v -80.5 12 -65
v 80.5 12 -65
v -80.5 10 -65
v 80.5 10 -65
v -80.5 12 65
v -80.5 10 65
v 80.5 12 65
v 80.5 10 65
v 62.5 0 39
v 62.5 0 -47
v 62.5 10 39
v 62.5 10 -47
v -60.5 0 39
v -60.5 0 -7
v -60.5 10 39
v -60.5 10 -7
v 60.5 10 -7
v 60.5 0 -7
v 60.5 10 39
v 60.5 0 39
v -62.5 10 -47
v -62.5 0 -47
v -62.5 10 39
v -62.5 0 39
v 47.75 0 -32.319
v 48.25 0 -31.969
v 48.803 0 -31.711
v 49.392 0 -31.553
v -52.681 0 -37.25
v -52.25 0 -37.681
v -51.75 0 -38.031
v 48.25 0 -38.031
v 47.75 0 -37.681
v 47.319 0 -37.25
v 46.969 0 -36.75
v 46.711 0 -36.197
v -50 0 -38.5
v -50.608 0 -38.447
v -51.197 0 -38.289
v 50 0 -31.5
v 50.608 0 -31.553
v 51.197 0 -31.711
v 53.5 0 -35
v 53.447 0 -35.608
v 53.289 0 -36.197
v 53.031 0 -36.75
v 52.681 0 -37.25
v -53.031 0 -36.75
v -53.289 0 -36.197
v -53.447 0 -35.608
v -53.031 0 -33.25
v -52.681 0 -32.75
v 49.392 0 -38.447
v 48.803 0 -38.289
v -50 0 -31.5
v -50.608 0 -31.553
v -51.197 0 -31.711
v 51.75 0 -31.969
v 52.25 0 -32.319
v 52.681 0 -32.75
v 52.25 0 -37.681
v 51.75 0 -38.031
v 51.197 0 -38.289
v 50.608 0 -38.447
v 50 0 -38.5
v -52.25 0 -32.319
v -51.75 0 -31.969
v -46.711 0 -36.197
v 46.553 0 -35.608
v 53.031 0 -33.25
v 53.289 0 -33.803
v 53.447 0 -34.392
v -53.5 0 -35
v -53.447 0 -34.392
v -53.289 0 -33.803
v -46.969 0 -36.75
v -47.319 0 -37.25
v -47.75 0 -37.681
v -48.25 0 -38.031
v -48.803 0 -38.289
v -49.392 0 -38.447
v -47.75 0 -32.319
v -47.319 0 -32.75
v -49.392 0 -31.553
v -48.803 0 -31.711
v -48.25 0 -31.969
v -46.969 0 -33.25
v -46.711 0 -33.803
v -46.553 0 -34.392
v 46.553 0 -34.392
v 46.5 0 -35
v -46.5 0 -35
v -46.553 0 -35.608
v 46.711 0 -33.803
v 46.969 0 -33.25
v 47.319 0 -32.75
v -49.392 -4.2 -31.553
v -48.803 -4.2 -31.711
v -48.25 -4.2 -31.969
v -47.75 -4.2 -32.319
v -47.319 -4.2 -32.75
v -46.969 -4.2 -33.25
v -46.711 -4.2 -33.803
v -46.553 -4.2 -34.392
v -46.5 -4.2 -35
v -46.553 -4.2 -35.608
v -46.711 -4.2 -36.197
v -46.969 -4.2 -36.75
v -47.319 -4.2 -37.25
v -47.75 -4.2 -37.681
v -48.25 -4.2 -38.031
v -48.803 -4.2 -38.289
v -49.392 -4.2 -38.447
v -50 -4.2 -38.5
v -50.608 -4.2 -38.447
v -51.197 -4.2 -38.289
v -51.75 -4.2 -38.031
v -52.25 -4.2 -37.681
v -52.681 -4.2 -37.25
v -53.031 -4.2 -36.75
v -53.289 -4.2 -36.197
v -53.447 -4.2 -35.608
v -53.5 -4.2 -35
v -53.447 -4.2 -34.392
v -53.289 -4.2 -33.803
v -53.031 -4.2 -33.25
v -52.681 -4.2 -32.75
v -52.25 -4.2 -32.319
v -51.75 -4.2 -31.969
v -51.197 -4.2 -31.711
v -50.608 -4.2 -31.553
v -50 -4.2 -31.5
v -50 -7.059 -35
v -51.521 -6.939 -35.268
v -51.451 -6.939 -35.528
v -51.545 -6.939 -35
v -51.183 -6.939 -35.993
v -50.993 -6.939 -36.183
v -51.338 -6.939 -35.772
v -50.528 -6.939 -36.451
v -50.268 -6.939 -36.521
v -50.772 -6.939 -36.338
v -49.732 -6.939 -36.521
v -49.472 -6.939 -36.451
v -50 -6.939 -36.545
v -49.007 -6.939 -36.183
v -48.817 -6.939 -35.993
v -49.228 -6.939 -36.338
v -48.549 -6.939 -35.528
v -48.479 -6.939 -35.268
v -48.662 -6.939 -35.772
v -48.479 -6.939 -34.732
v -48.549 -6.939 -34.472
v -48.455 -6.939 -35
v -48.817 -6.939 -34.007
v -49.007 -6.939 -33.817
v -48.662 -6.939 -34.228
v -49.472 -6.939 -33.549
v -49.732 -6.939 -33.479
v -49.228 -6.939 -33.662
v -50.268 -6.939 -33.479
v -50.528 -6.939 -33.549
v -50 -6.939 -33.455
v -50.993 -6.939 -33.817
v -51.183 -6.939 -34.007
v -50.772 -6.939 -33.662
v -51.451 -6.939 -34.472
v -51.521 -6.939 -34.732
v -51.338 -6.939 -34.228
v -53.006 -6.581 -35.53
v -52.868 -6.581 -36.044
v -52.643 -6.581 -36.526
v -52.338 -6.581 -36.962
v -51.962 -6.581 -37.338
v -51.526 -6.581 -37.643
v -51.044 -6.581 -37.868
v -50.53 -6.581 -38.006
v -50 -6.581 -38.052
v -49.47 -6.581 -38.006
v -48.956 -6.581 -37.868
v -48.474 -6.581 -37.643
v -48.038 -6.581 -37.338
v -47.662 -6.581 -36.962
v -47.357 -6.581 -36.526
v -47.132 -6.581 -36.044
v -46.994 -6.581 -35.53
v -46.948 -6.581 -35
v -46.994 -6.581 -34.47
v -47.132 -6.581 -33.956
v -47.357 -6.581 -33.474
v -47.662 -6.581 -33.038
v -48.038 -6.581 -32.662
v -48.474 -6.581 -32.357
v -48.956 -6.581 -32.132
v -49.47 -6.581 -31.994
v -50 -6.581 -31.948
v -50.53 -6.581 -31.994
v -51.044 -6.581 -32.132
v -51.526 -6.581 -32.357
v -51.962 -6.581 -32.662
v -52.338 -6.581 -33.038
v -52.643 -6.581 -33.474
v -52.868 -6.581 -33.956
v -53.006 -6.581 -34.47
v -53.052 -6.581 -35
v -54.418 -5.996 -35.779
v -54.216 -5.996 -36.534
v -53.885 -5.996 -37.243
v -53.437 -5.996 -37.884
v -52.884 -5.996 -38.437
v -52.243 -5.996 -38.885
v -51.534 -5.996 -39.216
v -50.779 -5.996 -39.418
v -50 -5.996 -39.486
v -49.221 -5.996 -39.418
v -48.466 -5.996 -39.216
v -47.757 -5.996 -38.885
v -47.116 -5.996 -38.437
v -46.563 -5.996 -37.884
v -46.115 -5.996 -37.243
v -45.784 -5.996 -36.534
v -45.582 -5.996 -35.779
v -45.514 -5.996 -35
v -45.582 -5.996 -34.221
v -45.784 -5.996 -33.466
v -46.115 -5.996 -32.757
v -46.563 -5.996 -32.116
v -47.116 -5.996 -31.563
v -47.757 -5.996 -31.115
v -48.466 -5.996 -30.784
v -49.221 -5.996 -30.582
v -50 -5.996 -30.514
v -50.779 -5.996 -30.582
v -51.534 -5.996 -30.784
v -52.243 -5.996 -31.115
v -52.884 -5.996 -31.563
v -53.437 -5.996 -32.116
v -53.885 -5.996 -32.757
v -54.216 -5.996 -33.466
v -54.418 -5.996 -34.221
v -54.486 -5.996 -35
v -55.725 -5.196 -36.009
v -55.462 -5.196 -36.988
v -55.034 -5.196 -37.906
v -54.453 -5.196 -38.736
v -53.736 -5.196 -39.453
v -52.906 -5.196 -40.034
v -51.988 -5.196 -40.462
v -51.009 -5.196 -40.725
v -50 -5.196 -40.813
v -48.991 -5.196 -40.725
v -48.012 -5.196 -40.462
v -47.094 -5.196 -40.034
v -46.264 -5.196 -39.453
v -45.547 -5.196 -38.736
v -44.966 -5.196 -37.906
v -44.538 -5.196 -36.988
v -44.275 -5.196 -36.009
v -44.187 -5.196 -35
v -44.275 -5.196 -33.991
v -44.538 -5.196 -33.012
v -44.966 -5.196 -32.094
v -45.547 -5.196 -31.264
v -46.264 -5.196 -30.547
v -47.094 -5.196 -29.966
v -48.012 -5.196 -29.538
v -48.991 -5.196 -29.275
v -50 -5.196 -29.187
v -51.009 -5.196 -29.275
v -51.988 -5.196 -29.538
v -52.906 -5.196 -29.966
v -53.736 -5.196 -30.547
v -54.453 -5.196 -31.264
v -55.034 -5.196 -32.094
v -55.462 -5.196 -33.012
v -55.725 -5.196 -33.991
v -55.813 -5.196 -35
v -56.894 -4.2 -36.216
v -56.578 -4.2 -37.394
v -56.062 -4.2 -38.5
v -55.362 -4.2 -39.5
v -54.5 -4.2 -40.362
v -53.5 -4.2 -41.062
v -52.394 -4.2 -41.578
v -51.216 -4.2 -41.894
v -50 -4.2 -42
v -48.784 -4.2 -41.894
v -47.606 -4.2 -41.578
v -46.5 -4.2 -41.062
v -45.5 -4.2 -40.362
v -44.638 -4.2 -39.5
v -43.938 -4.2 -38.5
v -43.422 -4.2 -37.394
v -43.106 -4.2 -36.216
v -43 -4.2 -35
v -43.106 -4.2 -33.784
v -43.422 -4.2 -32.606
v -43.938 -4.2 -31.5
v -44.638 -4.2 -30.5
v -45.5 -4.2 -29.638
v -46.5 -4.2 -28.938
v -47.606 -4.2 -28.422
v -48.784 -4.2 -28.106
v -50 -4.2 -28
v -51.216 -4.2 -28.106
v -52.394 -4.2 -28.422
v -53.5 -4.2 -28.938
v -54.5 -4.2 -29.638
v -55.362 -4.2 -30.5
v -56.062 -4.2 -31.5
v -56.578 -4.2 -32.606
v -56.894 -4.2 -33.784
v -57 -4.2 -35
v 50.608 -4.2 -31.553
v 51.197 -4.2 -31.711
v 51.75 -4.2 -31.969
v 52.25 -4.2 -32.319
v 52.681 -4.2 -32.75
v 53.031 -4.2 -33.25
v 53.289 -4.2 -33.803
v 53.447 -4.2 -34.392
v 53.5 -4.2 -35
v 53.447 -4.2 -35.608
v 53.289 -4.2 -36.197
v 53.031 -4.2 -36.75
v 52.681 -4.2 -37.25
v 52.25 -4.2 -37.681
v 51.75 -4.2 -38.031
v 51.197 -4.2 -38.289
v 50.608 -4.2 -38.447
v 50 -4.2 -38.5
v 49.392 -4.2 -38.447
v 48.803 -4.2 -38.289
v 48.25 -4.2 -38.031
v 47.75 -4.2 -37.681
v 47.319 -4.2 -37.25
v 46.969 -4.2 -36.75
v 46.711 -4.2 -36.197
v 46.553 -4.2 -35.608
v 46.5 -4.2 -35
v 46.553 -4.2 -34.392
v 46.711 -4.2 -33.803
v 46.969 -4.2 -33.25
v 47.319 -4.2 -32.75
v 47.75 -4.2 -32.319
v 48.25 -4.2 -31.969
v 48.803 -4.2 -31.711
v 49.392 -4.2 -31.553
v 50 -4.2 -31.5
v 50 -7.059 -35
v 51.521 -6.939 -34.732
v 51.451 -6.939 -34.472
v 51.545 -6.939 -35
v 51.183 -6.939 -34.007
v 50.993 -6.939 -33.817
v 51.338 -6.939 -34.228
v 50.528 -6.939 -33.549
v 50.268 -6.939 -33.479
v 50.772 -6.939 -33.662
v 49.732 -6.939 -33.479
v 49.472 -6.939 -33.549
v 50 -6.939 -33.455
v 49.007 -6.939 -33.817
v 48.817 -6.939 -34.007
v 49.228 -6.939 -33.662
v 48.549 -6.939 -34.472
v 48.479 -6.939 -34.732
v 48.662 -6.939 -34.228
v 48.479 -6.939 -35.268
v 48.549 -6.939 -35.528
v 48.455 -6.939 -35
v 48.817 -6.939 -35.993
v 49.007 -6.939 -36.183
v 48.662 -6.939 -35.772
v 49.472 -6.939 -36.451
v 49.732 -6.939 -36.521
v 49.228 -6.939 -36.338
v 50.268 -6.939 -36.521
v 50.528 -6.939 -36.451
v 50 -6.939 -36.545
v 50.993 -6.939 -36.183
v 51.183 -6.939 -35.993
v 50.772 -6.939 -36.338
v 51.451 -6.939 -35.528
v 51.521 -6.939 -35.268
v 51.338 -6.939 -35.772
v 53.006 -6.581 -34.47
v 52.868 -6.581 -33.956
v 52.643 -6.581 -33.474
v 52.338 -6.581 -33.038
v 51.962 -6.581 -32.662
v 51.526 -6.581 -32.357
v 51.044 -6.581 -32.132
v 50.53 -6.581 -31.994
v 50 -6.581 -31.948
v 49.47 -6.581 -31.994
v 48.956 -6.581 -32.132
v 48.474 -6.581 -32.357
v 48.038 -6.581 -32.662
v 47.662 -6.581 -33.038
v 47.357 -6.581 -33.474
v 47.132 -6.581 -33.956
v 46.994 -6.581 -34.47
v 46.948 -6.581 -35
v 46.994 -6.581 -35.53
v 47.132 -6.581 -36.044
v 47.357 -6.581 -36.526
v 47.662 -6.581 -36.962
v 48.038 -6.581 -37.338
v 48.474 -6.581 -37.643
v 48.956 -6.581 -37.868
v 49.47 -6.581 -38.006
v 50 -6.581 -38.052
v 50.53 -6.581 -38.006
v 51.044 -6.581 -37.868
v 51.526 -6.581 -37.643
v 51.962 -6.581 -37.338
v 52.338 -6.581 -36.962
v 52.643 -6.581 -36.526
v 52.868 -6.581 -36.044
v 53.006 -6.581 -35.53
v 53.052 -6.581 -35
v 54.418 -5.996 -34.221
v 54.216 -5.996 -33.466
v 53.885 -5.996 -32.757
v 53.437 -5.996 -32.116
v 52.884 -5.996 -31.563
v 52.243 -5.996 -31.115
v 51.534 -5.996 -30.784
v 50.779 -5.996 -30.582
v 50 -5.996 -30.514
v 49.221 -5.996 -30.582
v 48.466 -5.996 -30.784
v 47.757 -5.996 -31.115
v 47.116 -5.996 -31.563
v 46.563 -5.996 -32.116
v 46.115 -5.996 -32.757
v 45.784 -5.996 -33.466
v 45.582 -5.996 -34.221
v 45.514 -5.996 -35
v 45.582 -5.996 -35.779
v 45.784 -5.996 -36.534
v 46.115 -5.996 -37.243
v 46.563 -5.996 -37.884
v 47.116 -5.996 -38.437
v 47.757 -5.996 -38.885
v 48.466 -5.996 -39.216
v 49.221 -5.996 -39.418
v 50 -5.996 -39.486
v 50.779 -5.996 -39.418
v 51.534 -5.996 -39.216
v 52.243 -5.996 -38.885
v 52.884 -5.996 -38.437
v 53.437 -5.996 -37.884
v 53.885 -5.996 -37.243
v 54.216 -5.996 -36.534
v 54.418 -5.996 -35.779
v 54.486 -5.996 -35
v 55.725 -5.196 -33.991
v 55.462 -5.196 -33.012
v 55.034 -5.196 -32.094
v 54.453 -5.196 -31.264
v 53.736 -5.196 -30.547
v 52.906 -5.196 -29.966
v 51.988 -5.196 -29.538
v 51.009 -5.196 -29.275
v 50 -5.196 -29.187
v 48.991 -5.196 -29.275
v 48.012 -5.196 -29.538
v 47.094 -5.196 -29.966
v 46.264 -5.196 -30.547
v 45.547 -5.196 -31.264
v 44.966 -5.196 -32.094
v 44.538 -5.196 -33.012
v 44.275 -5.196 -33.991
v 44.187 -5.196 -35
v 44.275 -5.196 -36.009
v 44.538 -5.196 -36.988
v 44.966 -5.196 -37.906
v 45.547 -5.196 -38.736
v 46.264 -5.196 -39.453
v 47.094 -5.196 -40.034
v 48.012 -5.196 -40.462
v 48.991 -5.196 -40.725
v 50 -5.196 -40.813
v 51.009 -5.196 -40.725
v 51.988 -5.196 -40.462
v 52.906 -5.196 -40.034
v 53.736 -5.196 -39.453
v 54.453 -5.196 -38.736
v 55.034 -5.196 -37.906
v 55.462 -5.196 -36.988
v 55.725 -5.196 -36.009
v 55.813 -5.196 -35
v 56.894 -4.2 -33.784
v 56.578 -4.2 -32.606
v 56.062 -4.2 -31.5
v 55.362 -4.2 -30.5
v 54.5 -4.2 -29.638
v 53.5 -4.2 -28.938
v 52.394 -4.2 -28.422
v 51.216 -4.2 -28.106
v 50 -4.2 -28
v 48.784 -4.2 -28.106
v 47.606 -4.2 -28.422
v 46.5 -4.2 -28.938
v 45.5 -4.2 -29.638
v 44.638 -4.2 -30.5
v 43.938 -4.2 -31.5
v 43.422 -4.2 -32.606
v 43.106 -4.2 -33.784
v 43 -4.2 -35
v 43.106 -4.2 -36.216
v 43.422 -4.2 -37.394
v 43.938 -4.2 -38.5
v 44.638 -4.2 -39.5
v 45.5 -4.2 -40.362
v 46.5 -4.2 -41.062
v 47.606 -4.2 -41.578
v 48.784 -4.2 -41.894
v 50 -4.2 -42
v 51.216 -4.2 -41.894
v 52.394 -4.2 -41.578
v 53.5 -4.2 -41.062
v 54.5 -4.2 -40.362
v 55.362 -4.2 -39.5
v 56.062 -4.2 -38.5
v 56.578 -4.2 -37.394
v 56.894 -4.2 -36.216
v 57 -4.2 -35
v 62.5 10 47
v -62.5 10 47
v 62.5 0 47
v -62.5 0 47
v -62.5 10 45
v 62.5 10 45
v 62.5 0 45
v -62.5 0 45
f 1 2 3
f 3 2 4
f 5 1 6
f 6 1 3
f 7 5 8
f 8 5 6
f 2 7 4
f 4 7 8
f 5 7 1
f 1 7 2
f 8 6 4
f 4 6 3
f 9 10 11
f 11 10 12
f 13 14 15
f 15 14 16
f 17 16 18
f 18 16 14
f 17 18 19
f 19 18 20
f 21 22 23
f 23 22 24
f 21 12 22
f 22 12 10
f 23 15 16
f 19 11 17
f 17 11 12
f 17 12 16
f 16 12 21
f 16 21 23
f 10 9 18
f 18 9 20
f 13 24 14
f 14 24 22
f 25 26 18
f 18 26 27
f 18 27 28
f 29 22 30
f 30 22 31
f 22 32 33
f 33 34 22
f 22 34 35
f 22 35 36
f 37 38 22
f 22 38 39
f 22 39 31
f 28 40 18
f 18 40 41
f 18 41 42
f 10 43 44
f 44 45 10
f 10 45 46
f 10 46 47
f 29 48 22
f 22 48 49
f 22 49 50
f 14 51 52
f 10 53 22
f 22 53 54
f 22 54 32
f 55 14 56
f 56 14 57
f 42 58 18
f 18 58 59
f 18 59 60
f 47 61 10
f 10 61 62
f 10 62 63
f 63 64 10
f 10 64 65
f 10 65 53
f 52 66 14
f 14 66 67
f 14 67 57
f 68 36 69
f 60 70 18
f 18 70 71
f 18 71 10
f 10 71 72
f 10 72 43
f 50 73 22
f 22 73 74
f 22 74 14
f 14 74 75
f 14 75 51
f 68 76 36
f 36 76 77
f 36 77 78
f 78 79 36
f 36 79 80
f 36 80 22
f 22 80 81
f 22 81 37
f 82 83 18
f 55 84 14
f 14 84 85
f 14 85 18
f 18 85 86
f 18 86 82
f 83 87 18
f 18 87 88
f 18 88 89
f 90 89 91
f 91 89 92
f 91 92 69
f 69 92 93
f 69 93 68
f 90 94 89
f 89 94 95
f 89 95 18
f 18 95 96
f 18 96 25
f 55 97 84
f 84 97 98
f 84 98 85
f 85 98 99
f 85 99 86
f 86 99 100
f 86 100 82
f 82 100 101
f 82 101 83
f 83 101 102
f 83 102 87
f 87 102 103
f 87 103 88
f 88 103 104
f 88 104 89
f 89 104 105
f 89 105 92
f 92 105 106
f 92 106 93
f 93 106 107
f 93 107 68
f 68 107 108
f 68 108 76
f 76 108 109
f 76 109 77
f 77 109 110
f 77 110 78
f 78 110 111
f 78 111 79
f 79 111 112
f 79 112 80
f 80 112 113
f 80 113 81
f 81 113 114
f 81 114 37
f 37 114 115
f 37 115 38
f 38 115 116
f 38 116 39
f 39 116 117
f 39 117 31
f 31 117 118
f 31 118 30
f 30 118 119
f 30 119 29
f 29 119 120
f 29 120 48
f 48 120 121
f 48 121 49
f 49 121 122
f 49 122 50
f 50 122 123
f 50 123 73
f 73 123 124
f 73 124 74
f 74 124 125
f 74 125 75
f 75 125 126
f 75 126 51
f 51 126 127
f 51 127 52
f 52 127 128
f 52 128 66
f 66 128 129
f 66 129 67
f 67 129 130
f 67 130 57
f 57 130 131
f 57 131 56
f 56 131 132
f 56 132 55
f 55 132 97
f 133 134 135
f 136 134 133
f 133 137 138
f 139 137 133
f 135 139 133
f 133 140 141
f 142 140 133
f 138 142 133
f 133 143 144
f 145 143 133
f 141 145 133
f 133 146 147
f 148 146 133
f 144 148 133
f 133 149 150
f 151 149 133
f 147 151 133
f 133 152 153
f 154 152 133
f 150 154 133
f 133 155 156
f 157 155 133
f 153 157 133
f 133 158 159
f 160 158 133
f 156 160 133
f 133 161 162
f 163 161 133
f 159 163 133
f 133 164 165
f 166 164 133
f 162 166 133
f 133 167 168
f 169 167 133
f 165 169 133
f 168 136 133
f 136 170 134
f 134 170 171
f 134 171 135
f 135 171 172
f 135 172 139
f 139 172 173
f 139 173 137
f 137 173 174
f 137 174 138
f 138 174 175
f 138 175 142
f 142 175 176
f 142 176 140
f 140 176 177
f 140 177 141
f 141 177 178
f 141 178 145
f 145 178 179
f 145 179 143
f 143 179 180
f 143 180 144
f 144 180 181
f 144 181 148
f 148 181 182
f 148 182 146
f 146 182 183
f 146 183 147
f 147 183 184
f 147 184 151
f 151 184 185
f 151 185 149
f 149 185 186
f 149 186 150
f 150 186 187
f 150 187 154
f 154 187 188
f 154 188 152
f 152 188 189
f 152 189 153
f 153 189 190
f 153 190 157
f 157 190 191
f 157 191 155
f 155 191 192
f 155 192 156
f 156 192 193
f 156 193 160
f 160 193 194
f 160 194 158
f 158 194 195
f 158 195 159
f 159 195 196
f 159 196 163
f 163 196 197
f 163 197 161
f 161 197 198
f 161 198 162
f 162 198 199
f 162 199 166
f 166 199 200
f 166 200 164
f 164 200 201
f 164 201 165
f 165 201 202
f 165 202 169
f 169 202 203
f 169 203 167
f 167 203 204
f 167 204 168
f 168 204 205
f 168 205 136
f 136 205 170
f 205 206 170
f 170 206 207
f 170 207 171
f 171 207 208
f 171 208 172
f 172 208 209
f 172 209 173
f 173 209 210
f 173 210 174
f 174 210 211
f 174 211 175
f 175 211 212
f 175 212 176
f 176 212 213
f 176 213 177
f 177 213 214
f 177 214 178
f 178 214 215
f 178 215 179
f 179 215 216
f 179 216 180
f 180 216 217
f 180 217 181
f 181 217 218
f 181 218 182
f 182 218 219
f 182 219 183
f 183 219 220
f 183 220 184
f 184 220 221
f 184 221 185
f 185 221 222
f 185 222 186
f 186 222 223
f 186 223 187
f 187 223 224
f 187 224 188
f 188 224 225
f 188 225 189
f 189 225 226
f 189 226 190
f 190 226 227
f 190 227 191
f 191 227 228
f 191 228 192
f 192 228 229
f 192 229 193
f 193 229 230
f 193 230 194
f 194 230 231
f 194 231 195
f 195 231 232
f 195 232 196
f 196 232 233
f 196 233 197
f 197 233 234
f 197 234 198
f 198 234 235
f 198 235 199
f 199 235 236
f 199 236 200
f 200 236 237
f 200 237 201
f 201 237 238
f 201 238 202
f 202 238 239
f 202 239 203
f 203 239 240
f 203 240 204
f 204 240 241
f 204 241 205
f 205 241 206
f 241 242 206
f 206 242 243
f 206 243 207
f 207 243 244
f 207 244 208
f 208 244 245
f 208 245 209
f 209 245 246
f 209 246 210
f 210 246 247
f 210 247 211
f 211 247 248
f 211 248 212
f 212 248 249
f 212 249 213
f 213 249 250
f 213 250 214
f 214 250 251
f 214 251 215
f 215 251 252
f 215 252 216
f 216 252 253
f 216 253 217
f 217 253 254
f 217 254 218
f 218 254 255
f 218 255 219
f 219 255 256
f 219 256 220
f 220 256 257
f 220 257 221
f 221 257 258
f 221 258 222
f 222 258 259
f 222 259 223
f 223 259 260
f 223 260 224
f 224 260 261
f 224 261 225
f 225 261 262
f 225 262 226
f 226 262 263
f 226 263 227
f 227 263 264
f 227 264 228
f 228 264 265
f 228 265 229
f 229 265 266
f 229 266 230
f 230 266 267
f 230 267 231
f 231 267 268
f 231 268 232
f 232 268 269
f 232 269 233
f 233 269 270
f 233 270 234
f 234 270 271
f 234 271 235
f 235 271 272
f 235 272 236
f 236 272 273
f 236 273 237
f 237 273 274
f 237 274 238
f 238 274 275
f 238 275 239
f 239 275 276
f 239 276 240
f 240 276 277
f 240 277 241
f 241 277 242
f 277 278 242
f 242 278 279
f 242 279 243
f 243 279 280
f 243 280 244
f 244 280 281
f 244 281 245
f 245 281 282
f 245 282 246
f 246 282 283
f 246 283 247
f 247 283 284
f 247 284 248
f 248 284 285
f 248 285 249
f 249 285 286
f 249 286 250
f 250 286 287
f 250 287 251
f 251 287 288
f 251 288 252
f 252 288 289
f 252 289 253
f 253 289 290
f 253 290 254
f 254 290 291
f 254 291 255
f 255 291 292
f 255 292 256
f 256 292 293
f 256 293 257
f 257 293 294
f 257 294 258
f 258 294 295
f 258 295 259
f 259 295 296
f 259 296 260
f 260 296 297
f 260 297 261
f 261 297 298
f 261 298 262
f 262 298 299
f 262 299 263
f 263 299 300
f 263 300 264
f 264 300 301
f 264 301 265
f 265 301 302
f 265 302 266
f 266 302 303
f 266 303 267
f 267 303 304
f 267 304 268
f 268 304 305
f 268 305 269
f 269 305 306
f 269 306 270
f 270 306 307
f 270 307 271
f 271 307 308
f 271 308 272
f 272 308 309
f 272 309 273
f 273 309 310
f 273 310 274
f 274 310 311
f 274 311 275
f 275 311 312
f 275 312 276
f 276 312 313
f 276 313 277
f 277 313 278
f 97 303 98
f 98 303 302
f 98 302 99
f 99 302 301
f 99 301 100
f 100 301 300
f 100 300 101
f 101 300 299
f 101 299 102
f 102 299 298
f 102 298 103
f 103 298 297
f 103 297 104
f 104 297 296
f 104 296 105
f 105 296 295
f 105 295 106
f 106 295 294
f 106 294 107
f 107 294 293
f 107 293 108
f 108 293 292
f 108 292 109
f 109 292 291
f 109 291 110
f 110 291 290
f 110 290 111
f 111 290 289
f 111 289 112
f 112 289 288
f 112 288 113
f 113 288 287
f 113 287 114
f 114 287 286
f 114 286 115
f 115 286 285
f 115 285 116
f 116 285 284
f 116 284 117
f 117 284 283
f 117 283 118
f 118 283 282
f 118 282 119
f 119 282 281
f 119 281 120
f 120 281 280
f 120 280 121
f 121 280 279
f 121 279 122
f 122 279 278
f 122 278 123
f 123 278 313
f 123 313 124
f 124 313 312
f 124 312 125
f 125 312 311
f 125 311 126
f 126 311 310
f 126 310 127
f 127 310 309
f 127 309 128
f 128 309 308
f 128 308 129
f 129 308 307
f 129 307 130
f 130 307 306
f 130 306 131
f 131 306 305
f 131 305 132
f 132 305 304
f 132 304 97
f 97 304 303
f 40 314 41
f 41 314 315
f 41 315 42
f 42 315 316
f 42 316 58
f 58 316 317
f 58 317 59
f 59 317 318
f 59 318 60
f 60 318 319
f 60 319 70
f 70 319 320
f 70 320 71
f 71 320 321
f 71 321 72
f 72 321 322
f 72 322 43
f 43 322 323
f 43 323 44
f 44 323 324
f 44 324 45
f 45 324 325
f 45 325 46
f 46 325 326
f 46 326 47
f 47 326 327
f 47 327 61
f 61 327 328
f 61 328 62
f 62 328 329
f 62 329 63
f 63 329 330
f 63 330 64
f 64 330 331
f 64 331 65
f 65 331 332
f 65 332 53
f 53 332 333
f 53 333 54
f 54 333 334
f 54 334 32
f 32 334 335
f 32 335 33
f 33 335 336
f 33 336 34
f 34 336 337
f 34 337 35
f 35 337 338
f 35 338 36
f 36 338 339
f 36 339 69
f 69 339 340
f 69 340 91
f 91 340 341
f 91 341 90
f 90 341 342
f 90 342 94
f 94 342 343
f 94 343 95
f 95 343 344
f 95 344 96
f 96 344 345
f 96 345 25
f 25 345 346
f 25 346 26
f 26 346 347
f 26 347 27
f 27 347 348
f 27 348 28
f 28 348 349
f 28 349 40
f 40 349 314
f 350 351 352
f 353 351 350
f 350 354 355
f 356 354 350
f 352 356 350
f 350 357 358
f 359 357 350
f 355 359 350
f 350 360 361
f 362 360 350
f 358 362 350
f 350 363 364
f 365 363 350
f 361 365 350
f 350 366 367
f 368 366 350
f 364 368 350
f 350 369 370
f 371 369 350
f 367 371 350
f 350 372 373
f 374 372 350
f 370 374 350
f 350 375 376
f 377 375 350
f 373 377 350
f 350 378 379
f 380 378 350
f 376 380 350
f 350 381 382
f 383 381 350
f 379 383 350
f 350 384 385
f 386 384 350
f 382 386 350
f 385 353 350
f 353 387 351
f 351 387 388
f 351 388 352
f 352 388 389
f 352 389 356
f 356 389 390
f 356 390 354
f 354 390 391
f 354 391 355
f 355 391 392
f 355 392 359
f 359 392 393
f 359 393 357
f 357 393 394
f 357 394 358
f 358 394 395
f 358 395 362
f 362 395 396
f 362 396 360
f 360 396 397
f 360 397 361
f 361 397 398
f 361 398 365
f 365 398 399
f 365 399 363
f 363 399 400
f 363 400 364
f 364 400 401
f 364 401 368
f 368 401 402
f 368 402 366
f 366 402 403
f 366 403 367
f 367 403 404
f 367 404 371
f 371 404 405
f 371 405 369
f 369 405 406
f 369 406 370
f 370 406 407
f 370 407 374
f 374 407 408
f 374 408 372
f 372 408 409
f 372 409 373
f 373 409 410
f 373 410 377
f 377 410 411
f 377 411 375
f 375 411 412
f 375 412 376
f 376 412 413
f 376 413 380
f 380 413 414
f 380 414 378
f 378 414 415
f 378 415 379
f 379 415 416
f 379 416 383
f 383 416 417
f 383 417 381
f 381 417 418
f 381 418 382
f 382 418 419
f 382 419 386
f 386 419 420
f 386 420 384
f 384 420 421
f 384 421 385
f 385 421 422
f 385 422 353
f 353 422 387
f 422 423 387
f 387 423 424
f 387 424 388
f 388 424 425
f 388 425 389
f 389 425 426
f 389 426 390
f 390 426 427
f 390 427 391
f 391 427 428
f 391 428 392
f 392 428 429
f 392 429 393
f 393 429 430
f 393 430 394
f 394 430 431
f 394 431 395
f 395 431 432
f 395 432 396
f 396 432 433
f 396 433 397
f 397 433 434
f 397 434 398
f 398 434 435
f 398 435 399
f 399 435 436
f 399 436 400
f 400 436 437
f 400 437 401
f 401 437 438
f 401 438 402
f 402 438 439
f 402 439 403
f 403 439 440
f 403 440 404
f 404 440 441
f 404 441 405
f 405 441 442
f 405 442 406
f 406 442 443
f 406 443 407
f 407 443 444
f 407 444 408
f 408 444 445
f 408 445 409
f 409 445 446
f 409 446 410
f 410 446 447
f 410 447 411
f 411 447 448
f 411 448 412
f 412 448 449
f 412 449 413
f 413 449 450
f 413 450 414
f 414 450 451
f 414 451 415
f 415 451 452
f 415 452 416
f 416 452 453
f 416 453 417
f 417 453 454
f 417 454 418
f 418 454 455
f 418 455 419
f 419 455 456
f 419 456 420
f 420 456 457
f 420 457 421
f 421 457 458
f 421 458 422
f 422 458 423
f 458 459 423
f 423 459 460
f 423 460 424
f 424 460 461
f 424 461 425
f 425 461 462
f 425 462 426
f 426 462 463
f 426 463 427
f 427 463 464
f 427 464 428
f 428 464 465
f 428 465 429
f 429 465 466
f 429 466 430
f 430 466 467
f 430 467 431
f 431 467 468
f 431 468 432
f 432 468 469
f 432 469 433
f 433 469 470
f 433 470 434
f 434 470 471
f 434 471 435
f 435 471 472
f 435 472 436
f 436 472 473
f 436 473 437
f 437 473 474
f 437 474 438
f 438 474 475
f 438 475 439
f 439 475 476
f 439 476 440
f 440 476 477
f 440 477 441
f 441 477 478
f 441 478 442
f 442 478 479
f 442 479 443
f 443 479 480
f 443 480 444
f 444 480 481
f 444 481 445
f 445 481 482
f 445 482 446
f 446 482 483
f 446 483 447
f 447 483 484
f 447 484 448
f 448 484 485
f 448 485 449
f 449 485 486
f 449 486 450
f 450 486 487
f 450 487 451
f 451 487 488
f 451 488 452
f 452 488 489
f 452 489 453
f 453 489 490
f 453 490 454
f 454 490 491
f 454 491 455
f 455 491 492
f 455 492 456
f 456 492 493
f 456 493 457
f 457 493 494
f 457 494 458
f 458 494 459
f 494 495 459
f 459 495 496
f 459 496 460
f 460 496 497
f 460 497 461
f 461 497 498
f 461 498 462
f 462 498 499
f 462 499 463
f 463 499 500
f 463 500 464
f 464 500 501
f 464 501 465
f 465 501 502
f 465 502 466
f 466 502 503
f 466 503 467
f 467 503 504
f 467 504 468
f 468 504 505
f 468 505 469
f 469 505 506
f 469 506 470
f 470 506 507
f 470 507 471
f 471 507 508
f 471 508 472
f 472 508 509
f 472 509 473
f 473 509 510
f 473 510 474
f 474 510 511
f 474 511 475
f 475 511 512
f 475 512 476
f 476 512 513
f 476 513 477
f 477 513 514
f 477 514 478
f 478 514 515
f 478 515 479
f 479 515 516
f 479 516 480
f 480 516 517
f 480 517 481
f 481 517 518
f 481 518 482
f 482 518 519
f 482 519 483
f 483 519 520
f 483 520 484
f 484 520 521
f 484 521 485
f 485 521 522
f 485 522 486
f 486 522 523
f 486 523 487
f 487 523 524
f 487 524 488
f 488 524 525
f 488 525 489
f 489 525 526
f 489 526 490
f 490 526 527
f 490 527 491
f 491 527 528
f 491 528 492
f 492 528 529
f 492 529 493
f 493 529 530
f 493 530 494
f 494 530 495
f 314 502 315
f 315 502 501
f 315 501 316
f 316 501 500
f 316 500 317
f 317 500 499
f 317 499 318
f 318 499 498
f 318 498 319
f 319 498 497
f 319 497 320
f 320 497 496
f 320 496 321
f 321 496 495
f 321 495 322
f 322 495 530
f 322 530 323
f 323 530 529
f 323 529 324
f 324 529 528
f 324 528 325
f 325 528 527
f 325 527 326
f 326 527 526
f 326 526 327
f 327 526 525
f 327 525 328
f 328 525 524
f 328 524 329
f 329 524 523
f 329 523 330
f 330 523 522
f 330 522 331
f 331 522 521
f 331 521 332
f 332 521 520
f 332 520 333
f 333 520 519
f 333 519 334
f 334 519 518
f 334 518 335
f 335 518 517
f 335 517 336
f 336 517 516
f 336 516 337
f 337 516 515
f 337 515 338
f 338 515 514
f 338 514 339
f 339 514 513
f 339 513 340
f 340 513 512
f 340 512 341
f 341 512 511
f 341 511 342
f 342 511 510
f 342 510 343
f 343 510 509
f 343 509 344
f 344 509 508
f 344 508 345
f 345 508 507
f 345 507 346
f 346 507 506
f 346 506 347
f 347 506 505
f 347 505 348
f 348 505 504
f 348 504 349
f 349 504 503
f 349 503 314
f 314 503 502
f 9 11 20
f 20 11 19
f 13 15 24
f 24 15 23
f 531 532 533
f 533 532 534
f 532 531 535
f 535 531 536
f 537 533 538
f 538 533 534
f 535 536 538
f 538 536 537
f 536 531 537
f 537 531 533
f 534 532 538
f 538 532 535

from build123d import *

# Parameters (mm, degrees)
SKETCH1_W           = 125
SKETCH1_H           = 94
SKETCH1_W_2         = 121
SKETCH1_H_2         = 52
MAIN_DEPTH          = 10
MAINFRONTFACE_START = 10
SKETCH1_4_W         = 161
SKETCH1_4_H         = 130
SKETCH1_4_W_2       = 125
SKETCH1_4_H_2       = 94
SKETCH1_4_W_3       = 121
SKETCH1_4_H_3       = 52
MAINFRONTFACE_DEPTH = 2
SKETCH5_R           = 3.5
NOTCH_DEPTH         = 4.2
SKETCH11_W          = 2
SKETCH11_H          = 6
WIREHOLES_DEPTH     = 10


with BuildPart() as part:
    # Sketch1 → Main (new body)
    with BuildSketch(Plane(origin=(0, 0, 0), x_dir=(1, 0, 0), z_dir=(0, 1, 0))):
        Rectangle(SKETCH1_W, SKETCH1_H)
        with Locations((0, -19)):
            Rectangle(SKETCH1_W_2, SKETCH1_H_2, mode=Mode.SUBTRACT)
    extrude(amount=MAIN_DEPTH)

    # Sketch5 → Notch (add)
    with BuildSketch(Plane.XZ):
        with Locations(Location((-50, -35, 0), (0, 0, 90))):
            Circle(SKETCH5_R)
    notch = extrude(amount=NOTCH_DEPTH)

    # Sketch8 one side → ActualNotch (revolve)
    with BuildSketch(Plane.XY.offset(-35)):
        with BuildLine():
            Line((-50, -7.058571571), (-50, -4.2))
            Line((-50, -4.2), (-57, -4.2))
            ThreePointArc((-57, -4.2), (-53.780589618, -6.316386764), (-50, -7.058571571))
        make_face()
    actualnotch = revolve(axis=Axis((-50, -8.4, -35), (0, 1, 0)))

    # Mirror1: Notch, ActualNotch across plane
    add(notch.mirror(Plane(origin=(0, 0, 0), x_dir=(0, 0, 1), z_dir=(1, 0, 0))))
    add(actualnotch.mirror(Plane(origin=(0, 0, 0), x_dir=(0, 0, 1), z_dir=(1, 0, 0))))

    # Sketch11 → WireHoles (cut)
    with BuildSketch(Plane.XZ):
        with Locations((-61.5, 42)):
            Rectangle(SKETCH11_W, SKETCH11_H)
        with Locations((61.5, 42)):
            Rectangle(SKETCH11_W, SKETCH11_H)
    extrude(amount=-WIREHOLES_DEPTH, mode=Mode.SUBTRACT)


with BuildPart() as body_2:
    # Sketch1_4 → MainFrontFace (new body)
    with BuildSketch(Plane(origin=(0, 0, 0), x_dir=(1, 0, 0), z_dir=(0, 1, 0)).offset(MAINFRONTFACE_START)):
        Rectangle(SKETCH1_4_W, SKETCH1_4_H)
        Rectangle(SKETCH1_4_W_2, SKETCH1_4_H_2, mode=Mode.SUBTRACT)
        Rectangle(SKETCH1_4_W_2, SKETCH1_4_H_2)
        with Locations((0, -19)):
            Rectangle(SKETCH1_4_W_3, SKETCH1_4_H_3, mode=Mode.SUBTRACT)
        with Locations((0, -19)):
            Rectangle(SKETCH1_4_W_3, SKETCH1_4_H_3)
    extrude(amount=MAINFRONTFACE_DEPTH)


with BuildPart() as wireholes_piece_1:
    # of the separate pieces the step leaves, piece 1, a body of its own (wireholes_pieces)
    add(part.part.solids().sort_by_distance((57, -4.2, -35))[0])


with BuildPart() as wireholes_piece_2:
    # of the separate pieces the step leaves, piece 2, a body of its own (wireholes_pieces)
    add(part.part.solids().sort_by_distance((62.5, 0, 47))[0])


solid = Compound([body_2.part, wireholes_piece_1.part, wireholes_piece_2.part])
